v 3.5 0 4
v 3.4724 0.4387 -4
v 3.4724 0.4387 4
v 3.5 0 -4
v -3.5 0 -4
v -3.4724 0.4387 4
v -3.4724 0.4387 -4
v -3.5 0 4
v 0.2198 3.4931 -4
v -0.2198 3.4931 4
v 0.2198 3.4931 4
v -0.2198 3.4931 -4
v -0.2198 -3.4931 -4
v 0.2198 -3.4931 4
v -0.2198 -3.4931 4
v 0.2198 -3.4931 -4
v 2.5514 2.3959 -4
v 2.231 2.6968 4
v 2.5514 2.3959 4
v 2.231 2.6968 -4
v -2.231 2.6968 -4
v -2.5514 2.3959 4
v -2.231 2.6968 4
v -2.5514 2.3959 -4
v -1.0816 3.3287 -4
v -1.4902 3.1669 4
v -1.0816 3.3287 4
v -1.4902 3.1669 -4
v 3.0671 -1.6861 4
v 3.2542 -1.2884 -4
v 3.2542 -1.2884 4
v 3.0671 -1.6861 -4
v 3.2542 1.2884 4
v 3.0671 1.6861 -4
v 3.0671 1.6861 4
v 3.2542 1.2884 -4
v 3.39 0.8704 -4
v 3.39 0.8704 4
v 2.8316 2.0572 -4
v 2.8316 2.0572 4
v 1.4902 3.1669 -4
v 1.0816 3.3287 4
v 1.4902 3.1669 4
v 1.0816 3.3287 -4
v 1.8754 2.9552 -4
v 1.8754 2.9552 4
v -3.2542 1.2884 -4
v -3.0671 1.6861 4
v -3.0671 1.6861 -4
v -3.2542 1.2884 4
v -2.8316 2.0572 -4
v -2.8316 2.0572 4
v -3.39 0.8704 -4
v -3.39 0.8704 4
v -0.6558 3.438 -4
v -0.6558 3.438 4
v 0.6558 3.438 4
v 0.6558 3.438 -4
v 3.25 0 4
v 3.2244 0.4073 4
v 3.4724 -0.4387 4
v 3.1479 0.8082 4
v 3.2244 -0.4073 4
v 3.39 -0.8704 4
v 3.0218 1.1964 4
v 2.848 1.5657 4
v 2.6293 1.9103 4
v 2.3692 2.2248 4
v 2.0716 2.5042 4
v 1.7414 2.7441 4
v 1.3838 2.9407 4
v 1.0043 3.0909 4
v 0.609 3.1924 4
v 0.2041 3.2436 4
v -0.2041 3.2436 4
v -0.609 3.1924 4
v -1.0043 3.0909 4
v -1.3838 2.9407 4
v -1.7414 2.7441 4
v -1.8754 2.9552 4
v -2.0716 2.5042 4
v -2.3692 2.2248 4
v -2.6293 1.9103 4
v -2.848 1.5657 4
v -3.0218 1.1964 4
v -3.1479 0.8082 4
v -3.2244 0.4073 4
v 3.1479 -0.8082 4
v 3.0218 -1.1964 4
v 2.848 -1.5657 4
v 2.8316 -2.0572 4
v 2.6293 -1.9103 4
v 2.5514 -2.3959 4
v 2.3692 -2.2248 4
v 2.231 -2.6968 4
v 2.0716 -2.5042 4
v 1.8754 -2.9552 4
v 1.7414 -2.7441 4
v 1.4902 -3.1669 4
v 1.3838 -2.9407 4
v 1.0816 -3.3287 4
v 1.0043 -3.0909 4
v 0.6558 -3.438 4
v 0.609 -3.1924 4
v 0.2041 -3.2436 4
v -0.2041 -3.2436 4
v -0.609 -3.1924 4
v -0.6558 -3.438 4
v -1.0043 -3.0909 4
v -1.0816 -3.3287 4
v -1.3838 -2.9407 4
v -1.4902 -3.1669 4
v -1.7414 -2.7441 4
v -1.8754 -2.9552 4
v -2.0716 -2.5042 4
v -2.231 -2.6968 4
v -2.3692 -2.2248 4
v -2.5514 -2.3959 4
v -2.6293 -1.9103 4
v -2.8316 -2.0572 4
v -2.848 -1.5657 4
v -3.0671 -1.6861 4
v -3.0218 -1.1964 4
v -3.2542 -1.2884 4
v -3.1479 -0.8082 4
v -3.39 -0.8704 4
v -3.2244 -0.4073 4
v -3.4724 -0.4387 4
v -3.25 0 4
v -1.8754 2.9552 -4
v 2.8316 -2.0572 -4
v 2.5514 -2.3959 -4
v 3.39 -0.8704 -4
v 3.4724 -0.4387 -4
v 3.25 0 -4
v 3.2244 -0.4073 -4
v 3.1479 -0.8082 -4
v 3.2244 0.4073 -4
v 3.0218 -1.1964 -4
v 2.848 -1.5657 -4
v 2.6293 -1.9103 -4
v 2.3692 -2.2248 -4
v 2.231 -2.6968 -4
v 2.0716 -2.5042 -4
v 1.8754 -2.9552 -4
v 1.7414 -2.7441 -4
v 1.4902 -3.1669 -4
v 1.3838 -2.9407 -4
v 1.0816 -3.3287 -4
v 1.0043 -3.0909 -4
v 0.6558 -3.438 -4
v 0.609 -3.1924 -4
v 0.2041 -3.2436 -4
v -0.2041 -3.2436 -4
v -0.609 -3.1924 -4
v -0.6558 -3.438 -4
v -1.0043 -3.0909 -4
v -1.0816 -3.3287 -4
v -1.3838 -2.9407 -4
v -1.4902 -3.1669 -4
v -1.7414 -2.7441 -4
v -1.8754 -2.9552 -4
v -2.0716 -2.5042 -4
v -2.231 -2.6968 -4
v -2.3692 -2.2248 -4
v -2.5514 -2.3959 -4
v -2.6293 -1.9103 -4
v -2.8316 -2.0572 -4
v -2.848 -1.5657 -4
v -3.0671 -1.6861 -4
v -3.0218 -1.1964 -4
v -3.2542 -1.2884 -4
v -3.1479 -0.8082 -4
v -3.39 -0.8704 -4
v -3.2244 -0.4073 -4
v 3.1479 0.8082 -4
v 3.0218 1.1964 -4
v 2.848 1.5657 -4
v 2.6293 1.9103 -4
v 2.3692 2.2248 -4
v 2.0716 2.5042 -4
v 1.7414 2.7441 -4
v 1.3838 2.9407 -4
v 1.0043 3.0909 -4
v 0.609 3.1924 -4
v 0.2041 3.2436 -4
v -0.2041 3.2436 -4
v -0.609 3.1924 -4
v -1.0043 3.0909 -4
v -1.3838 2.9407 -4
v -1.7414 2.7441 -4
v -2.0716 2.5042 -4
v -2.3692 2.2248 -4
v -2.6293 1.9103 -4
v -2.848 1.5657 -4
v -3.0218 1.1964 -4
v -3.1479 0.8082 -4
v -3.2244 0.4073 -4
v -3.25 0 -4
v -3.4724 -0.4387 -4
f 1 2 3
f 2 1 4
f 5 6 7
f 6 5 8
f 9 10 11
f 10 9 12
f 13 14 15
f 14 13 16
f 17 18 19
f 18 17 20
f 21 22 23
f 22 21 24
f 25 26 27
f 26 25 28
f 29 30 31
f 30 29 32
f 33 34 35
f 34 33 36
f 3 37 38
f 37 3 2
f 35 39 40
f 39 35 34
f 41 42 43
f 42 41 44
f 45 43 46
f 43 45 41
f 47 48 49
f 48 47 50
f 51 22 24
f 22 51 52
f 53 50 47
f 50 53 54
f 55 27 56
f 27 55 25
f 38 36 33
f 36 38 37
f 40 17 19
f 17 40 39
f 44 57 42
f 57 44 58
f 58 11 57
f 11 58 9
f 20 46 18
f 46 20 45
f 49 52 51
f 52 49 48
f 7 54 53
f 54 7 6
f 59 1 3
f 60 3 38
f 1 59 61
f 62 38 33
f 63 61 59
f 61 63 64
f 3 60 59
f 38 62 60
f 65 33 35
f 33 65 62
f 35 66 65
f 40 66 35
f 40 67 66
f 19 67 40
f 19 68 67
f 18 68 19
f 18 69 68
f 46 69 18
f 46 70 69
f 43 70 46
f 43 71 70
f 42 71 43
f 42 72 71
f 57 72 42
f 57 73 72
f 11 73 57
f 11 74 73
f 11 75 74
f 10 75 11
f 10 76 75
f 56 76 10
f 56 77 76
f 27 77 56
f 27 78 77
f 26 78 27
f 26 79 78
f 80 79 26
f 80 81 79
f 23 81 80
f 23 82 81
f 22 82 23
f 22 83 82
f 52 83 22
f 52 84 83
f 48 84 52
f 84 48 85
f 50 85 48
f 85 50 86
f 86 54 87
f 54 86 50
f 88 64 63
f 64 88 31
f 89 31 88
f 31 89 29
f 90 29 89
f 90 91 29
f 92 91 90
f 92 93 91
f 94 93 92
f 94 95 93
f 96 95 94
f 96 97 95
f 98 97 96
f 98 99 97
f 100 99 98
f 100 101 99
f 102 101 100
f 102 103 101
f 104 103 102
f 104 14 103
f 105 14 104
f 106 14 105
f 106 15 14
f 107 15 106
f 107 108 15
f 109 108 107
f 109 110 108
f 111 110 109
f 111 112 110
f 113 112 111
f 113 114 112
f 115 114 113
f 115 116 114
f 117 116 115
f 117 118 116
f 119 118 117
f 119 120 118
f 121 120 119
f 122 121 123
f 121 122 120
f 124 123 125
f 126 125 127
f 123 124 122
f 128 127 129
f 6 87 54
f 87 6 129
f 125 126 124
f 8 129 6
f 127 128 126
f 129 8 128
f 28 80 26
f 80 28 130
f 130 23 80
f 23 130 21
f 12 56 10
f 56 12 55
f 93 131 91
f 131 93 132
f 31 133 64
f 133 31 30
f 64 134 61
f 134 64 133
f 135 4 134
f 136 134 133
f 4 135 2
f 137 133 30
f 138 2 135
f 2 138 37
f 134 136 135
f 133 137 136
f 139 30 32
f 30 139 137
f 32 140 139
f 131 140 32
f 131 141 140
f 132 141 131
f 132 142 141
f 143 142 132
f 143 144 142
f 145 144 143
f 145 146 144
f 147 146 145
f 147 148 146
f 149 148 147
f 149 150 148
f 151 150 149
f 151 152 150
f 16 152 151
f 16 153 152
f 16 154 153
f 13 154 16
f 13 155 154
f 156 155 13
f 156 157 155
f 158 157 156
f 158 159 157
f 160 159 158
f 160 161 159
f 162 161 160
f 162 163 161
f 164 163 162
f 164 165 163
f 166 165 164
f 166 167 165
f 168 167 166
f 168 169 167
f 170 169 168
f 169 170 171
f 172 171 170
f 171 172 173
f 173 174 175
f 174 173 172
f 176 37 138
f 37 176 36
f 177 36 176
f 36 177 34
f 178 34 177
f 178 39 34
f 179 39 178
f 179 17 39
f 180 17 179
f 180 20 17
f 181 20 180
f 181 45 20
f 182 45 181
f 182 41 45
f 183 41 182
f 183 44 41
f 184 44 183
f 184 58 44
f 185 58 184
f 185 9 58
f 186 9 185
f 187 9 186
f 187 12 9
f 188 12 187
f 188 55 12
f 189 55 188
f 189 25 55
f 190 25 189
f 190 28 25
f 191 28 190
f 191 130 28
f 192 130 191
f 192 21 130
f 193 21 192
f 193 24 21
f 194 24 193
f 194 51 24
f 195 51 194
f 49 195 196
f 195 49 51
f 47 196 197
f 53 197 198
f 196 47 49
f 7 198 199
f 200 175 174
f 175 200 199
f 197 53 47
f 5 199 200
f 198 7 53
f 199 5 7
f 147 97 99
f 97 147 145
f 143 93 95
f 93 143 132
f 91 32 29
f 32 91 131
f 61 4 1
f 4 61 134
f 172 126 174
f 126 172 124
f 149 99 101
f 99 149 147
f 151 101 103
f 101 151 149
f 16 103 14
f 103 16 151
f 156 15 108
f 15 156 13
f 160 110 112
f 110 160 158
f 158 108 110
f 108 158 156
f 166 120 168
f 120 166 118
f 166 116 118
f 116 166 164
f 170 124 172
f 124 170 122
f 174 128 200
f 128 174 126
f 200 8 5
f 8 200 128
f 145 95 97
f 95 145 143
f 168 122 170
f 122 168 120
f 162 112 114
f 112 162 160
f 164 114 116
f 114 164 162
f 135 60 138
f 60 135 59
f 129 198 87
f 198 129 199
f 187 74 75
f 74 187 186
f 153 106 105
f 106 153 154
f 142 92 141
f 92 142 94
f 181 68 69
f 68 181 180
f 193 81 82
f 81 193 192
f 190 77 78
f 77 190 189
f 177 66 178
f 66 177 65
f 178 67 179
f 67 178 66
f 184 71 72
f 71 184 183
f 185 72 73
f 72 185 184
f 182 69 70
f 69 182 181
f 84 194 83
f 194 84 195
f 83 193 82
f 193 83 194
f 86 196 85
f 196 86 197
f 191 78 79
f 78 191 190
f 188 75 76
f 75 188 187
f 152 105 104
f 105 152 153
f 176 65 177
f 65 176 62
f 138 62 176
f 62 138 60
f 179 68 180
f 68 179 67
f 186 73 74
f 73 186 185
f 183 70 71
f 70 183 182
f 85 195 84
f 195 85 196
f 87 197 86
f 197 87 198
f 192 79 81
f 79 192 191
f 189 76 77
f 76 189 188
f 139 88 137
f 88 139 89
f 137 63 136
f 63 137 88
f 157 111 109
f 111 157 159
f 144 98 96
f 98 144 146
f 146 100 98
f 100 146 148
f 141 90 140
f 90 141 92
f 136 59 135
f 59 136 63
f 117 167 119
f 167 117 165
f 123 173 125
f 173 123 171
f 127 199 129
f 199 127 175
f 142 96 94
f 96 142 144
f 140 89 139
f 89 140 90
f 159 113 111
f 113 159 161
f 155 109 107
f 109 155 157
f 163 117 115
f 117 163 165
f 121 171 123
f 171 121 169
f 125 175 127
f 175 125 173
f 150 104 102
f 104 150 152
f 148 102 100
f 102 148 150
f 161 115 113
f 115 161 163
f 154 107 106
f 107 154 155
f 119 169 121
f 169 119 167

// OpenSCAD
$fn = 50;


difference() {
	union() {
		translate(v = [0, 0, -4.0000000000]) {
			cylinder(h = 8, r = 3.5000000000);
		}
	}
	union() {
		translate(v = [0, 0, -100.0000000000]) {
			cylinder(h = 200, r = 3.2500000000);
		}
	}
}
